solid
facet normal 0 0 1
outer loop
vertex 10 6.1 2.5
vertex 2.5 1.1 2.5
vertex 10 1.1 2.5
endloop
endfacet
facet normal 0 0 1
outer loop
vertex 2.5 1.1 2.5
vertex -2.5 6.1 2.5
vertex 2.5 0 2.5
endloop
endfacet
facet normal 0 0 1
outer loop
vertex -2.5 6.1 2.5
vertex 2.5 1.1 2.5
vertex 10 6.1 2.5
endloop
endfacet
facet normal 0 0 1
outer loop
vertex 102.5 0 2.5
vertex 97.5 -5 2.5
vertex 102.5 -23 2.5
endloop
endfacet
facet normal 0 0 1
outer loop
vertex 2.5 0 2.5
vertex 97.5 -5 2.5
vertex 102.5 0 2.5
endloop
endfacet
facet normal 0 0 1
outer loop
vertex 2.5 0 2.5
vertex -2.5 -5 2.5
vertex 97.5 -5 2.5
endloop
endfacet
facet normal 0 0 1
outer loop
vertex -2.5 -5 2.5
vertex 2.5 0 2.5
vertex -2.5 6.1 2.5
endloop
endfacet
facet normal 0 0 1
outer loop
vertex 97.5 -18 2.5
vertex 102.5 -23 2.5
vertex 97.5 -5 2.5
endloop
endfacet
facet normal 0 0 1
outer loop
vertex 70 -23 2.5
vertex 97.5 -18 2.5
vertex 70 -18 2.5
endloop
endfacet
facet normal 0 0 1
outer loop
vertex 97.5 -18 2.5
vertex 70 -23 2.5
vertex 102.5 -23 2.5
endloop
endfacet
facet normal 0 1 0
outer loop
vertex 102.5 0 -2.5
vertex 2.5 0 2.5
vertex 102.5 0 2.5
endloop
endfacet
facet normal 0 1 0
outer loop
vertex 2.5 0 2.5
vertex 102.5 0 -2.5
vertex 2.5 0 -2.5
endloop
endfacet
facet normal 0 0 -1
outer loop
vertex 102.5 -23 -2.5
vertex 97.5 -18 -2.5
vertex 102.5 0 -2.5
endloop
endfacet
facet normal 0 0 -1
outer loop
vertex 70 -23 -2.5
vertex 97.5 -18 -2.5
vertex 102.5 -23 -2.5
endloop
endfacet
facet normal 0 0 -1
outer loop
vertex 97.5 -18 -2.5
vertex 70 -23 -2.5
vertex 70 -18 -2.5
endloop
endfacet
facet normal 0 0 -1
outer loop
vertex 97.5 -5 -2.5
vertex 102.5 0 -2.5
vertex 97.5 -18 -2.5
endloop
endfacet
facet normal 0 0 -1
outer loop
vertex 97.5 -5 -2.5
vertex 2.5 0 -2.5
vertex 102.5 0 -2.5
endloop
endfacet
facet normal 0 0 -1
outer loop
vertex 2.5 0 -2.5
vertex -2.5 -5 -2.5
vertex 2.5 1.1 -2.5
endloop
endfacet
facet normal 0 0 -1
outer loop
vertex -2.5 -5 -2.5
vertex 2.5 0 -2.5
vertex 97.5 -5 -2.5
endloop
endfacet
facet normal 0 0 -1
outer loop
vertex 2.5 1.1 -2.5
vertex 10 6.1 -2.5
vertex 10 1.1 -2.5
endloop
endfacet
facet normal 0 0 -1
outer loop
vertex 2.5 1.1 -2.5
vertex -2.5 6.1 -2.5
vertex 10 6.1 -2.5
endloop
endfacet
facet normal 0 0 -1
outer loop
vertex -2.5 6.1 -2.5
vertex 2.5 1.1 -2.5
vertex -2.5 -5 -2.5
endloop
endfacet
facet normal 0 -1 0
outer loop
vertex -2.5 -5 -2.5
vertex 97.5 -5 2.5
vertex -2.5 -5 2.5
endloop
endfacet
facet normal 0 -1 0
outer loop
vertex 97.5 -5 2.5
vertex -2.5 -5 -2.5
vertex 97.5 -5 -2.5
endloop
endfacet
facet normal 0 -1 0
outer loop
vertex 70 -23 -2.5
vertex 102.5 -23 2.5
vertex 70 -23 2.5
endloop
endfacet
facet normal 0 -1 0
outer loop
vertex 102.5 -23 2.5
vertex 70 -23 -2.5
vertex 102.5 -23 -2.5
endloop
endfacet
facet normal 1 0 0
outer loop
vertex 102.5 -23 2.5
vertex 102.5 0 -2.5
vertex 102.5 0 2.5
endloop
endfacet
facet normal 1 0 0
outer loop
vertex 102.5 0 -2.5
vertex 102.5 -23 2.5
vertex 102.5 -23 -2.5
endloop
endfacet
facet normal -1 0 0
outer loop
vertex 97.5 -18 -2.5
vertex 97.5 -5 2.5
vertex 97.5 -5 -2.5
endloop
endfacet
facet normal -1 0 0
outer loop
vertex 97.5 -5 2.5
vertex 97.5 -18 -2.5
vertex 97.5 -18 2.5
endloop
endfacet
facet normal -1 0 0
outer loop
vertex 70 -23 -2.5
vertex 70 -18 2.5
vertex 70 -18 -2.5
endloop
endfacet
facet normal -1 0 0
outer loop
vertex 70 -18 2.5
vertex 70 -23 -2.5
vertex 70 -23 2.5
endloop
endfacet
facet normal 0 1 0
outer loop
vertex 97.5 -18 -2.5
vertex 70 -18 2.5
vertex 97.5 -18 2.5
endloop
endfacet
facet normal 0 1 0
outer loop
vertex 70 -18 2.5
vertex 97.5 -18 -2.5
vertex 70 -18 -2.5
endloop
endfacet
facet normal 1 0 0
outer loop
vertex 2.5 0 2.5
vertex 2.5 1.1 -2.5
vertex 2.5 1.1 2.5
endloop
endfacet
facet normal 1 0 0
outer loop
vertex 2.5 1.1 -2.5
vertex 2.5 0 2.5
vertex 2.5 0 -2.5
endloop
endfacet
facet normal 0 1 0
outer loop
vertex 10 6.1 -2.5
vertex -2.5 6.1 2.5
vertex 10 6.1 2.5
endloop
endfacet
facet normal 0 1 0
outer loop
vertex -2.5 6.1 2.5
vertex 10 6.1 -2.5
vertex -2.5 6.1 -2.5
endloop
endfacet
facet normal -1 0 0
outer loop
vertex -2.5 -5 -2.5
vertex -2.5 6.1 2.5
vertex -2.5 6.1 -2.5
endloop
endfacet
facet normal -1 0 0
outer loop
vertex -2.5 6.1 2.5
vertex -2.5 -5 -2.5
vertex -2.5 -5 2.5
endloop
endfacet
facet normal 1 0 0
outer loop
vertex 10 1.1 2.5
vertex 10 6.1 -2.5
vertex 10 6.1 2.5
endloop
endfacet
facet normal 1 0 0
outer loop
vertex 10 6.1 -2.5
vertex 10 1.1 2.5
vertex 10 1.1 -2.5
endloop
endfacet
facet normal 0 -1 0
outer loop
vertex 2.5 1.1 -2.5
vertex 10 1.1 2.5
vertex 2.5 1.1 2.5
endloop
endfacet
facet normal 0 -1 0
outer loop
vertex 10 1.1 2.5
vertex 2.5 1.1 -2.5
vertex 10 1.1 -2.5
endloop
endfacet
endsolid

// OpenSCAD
rotate([90,90,0]) hook(l=100);

module hook(l=100) {
    rotate([-90,0,0]) linear_extrude(l) translate([-2.5,-5,0]) square(5);
    
    translate([0,l,0]) linear_extrude(20+3) square(5, center=true);
    translate([0,l-10-20,20+3-5]) rotate([-90,0,0]) linear_extrude(10+20) translate([-2.5,-5,0]) square(5);
    
    translate([0,0,5]) rotate([0,180,0]) linear_extrude(10+1+0.1) square(5, center=true);
    translate([0,0,-(5+1+0.1)]) rotate([-90,0,0]) linear_extrude(10) translate([-2.5,-5,0]) square(5);
}
